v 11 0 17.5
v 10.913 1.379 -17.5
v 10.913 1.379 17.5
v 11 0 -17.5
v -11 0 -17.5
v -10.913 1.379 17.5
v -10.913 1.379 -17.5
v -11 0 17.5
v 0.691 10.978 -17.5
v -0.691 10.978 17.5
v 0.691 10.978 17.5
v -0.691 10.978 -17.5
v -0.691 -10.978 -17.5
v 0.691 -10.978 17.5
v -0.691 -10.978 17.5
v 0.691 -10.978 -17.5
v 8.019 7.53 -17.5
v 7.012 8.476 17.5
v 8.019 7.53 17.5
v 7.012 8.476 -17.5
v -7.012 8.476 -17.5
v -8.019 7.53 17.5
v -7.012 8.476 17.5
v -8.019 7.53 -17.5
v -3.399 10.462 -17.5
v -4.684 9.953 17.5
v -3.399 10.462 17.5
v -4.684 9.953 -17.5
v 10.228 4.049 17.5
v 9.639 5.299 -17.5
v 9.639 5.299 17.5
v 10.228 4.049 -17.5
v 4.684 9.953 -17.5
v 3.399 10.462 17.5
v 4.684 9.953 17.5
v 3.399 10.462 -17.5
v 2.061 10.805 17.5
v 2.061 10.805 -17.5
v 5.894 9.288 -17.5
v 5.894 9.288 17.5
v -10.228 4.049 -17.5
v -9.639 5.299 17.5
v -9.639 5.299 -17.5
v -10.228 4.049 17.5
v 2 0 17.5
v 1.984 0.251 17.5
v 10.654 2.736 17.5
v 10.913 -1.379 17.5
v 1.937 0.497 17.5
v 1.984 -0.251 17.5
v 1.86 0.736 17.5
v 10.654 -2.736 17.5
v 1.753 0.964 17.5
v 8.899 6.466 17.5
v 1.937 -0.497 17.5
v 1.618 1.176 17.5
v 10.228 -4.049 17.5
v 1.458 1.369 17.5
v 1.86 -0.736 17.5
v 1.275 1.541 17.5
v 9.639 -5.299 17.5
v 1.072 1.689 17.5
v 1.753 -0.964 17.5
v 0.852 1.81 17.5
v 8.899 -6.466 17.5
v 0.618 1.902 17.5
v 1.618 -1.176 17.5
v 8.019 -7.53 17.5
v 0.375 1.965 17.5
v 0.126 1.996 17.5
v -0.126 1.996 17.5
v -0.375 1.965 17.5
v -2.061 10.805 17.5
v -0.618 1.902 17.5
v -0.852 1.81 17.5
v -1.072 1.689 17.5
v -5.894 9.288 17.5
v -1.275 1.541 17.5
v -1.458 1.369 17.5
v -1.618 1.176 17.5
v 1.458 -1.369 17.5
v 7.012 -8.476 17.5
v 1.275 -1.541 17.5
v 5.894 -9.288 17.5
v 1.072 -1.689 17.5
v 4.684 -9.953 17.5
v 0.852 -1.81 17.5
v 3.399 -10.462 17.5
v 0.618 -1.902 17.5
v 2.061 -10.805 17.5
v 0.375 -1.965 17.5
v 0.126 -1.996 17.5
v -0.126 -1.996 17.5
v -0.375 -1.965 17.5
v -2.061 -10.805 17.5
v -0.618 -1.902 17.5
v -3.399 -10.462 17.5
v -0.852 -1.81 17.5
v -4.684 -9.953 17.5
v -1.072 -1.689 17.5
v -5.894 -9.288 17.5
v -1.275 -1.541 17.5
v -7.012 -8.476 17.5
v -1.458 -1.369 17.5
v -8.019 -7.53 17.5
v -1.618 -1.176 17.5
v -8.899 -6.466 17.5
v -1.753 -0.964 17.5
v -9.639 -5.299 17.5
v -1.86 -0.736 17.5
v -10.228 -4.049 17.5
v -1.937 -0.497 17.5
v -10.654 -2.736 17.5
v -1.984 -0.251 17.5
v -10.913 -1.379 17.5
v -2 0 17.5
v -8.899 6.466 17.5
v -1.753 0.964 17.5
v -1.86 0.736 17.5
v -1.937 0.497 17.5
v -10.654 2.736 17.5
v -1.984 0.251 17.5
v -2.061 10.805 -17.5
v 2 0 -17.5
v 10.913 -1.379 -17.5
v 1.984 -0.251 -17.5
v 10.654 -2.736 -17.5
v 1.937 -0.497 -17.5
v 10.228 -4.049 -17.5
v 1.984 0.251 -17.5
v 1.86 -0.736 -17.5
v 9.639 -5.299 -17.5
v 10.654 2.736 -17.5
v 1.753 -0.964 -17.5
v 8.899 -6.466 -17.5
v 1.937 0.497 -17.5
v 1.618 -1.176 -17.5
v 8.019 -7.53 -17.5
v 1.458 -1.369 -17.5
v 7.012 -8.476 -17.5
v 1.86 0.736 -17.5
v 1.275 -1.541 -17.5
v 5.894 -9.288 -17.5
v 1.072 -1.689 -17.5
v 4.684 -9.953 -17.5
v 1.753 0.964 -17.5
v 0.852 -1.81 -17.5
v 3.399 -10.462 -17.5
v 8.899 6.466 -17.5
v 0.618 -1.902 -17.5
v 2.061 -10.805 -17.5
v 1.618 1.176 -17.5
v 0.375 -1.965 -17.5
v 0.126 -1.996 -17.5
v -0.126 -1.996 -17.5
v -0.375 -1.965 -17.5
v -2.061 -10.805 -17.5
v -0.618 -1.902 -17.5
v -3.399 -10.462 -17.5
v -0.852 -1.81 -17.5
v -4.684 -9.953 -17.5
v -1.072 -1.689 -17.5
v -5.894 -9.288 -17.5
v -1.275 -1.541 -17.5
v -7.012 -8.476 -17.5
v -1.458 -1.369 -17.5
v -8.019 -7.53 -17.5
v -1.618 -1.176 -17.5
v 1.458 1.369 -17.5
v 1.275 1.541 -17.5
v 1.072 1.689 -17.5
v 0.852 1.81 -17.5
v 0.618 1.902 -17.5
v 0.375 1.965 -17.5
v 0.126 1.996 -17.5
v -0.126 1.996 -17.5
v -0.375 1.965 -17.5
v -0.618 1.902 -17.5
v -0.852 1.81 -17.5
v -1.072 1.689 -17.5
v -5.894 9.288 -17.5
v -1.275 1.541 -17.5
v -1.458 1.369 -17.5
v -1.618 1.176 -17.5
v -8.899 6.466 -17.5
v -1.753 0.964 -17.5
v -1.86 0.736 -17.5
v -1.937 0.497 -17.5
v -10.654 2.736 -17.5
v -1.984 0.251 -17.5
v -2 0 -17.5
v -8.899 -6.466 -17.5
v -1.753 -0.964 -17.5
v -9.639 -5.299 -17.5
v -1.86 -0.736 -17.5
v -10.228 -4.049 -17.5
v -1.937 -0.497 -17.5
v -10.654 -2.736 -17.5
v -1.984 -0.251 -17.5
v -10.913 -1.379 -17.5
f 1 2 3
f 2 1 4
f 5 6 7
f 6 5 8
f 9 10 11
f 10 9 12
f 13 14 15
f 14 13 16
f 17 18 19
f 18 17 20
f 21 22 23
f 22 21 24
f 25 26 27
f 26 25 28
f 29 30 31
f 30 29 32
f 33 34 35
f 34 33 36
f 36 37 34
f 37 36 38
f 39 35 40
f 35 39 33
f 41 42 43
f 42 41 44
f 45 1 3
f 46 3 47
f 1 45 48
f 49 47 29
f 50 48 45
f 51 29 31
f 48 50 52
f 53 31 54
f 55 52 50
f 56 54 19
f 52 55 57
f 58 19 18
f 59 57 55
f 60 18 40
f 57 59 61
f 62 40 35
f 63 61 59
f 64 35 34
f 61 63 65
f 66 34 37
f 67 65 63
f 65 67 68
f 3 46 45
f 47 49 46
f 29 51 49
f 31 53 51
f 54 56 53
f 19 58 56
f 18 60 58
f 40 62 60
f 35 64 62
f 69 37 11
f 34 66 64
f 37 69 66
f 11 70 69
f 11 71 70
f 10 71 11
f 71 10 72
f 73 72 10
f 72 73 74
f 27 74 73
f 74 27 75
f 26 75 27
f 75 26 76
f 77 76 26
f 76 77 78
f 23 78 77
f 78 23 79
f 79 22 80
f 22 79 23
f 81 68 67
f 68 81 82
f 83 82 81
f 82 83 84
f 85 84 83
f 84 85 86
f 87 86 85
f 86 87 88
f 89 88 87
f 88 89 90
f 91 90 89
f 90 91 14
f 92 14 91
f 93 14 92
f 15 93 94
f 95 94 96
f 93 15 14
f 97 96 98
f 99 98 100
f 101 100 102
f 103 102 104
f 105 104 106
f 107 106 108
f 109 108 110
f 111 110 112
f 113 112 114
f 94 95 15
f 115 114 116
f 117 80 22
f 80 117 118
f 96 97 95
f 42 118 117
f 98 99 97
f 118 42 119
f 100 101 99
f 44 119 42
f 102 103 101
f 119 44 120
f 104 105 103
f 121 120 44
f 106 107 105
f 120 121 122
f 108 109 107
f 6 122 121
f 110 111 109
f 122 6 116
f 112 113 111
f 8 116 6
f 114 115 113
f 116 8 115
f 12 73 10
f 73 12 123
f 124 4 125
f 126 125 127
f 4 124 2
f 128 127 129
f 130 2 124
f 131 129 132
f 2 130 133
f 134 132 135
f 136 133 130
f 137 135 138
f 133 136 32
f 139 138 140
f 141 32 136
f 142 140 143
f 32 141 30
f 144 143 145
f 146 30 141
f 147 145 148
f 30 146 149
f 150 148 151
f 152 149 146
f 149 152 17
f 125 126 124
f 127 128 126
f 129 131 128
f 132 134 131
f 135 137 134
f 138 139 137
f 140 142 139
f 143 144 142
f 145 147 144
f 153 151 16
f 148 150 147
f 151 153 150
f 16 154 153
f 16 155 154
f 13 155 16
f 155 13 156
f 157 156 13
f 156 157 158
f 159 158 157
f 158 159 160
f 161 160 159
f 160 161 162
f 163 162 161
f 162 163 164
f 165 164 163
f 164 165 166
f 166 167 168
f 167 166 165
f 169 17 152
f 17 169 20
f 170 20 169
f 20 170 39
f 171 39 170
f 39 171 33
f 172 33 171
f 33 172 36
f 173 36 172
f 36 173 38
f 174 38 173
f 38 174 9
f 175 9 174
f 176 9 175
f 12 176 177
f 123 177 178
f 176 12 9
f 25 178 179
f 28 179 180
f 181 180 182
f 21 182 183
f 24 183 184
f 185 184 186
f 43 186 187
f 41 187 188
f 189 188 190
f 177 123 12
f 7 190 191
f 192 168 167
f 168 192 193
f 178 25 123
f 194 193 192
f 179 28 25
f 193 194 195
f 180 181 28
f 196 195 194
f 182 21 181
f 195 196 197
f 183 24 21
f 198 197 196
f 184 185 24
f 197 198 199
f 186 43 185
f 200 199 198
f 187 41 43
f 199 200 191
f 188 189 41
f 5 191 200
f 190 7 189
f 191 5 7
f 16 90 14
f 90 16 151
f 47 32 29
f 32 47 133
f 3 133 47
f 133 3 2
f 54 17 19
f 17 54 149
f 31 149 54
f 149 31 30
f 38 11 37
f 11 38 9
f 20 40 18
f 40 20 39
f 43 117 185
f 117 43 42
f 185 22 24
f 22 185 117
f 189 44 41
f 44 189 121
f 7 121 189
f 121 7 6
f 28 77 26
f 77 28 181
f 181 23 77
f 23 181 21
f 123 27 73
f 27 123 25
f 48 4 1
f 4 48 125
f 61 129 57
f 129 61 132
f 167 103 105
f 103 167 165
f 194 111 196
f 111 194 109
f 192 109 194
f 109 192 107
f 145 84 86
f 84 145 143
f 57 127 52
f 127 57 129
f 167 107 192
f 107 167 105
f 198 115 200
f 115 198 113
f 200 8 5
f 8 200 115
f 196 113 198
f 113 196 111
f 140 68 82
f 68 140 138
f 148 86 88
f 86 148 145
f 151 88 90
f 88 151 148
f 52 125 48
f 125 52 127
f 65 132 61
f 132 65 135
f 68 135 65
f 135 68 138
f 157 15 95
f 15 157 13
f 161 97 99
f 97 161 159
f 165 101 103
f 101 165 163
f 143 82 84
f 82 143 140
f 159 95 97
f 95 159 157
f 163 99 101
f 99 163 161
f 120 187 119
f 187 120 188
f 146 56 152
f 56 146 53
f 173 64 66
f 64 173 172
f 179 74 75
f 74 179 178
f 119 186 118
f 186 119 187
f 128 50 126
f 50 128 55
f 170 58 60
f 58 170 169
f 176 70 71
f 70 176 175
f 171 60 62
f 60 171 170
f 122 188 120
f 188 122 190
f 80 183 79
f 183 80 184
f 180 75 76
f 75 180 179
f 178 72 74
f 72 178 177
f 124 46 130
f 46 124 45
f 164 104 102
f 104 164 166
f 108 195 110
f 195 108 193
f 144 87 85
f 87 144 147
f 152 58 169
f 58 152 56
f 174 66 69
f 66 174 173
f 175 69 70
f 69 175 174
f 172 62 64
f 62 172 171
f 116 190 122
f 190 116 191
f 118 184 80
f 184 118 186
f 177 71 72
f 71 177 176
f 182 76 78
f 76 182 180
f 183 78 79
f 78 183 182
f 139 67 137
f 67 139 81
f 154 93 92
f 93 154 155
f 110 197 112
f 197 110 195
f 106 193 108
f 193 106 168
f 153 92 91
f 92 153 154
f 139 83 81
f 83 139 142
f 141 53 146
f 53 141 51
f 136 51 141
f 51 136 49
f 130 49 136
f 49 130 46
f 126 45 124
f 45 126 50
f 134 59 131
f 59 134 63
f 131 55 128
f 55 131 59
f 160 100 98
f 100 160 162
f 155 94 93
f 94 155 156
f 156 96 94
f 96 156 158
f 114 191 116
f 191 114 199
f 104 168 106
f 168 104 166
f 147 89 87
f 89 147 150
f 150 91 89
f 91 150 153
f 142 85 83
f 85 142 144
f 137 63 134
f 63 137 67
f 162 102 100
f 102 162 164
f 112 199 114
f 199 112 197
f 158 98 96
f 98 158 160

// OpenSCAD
$fn = 50;


difference() {
	union() {
		translate(v = [0, 0, -17.5000000000]) {
			cylinder(h = 35, r = 11.0000000000);
		}
	}
	union() {
		translate(v = [0, 0, -100.0000000000]) {
			cylinder(h = 200, r = 2);
		}
	}
}
